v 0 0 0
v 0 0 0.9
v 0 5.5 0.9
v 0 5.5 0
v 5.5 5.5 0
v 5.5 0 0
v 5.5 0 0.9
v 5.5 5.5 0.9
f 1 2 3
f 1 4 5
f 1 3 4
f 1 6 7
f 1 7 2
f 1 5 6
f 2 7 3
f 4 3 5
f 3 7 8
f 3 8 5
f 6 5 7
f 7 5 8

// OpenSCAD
/* Warning, this is a very basic generator with a lot of approximation 
input data : [VFBGA, 3MX, 5.5x5.5x0.9mm, 82, , A, C04-00463A]
generated by com.zoubworld.electronics.cad.model3d.Basic
Date : Sun Feb 15 10:50:48 CET 2026
*/

//body
color("black")
translate([0,0,0])
cube([5.5,5.5,0.9], center=false);
